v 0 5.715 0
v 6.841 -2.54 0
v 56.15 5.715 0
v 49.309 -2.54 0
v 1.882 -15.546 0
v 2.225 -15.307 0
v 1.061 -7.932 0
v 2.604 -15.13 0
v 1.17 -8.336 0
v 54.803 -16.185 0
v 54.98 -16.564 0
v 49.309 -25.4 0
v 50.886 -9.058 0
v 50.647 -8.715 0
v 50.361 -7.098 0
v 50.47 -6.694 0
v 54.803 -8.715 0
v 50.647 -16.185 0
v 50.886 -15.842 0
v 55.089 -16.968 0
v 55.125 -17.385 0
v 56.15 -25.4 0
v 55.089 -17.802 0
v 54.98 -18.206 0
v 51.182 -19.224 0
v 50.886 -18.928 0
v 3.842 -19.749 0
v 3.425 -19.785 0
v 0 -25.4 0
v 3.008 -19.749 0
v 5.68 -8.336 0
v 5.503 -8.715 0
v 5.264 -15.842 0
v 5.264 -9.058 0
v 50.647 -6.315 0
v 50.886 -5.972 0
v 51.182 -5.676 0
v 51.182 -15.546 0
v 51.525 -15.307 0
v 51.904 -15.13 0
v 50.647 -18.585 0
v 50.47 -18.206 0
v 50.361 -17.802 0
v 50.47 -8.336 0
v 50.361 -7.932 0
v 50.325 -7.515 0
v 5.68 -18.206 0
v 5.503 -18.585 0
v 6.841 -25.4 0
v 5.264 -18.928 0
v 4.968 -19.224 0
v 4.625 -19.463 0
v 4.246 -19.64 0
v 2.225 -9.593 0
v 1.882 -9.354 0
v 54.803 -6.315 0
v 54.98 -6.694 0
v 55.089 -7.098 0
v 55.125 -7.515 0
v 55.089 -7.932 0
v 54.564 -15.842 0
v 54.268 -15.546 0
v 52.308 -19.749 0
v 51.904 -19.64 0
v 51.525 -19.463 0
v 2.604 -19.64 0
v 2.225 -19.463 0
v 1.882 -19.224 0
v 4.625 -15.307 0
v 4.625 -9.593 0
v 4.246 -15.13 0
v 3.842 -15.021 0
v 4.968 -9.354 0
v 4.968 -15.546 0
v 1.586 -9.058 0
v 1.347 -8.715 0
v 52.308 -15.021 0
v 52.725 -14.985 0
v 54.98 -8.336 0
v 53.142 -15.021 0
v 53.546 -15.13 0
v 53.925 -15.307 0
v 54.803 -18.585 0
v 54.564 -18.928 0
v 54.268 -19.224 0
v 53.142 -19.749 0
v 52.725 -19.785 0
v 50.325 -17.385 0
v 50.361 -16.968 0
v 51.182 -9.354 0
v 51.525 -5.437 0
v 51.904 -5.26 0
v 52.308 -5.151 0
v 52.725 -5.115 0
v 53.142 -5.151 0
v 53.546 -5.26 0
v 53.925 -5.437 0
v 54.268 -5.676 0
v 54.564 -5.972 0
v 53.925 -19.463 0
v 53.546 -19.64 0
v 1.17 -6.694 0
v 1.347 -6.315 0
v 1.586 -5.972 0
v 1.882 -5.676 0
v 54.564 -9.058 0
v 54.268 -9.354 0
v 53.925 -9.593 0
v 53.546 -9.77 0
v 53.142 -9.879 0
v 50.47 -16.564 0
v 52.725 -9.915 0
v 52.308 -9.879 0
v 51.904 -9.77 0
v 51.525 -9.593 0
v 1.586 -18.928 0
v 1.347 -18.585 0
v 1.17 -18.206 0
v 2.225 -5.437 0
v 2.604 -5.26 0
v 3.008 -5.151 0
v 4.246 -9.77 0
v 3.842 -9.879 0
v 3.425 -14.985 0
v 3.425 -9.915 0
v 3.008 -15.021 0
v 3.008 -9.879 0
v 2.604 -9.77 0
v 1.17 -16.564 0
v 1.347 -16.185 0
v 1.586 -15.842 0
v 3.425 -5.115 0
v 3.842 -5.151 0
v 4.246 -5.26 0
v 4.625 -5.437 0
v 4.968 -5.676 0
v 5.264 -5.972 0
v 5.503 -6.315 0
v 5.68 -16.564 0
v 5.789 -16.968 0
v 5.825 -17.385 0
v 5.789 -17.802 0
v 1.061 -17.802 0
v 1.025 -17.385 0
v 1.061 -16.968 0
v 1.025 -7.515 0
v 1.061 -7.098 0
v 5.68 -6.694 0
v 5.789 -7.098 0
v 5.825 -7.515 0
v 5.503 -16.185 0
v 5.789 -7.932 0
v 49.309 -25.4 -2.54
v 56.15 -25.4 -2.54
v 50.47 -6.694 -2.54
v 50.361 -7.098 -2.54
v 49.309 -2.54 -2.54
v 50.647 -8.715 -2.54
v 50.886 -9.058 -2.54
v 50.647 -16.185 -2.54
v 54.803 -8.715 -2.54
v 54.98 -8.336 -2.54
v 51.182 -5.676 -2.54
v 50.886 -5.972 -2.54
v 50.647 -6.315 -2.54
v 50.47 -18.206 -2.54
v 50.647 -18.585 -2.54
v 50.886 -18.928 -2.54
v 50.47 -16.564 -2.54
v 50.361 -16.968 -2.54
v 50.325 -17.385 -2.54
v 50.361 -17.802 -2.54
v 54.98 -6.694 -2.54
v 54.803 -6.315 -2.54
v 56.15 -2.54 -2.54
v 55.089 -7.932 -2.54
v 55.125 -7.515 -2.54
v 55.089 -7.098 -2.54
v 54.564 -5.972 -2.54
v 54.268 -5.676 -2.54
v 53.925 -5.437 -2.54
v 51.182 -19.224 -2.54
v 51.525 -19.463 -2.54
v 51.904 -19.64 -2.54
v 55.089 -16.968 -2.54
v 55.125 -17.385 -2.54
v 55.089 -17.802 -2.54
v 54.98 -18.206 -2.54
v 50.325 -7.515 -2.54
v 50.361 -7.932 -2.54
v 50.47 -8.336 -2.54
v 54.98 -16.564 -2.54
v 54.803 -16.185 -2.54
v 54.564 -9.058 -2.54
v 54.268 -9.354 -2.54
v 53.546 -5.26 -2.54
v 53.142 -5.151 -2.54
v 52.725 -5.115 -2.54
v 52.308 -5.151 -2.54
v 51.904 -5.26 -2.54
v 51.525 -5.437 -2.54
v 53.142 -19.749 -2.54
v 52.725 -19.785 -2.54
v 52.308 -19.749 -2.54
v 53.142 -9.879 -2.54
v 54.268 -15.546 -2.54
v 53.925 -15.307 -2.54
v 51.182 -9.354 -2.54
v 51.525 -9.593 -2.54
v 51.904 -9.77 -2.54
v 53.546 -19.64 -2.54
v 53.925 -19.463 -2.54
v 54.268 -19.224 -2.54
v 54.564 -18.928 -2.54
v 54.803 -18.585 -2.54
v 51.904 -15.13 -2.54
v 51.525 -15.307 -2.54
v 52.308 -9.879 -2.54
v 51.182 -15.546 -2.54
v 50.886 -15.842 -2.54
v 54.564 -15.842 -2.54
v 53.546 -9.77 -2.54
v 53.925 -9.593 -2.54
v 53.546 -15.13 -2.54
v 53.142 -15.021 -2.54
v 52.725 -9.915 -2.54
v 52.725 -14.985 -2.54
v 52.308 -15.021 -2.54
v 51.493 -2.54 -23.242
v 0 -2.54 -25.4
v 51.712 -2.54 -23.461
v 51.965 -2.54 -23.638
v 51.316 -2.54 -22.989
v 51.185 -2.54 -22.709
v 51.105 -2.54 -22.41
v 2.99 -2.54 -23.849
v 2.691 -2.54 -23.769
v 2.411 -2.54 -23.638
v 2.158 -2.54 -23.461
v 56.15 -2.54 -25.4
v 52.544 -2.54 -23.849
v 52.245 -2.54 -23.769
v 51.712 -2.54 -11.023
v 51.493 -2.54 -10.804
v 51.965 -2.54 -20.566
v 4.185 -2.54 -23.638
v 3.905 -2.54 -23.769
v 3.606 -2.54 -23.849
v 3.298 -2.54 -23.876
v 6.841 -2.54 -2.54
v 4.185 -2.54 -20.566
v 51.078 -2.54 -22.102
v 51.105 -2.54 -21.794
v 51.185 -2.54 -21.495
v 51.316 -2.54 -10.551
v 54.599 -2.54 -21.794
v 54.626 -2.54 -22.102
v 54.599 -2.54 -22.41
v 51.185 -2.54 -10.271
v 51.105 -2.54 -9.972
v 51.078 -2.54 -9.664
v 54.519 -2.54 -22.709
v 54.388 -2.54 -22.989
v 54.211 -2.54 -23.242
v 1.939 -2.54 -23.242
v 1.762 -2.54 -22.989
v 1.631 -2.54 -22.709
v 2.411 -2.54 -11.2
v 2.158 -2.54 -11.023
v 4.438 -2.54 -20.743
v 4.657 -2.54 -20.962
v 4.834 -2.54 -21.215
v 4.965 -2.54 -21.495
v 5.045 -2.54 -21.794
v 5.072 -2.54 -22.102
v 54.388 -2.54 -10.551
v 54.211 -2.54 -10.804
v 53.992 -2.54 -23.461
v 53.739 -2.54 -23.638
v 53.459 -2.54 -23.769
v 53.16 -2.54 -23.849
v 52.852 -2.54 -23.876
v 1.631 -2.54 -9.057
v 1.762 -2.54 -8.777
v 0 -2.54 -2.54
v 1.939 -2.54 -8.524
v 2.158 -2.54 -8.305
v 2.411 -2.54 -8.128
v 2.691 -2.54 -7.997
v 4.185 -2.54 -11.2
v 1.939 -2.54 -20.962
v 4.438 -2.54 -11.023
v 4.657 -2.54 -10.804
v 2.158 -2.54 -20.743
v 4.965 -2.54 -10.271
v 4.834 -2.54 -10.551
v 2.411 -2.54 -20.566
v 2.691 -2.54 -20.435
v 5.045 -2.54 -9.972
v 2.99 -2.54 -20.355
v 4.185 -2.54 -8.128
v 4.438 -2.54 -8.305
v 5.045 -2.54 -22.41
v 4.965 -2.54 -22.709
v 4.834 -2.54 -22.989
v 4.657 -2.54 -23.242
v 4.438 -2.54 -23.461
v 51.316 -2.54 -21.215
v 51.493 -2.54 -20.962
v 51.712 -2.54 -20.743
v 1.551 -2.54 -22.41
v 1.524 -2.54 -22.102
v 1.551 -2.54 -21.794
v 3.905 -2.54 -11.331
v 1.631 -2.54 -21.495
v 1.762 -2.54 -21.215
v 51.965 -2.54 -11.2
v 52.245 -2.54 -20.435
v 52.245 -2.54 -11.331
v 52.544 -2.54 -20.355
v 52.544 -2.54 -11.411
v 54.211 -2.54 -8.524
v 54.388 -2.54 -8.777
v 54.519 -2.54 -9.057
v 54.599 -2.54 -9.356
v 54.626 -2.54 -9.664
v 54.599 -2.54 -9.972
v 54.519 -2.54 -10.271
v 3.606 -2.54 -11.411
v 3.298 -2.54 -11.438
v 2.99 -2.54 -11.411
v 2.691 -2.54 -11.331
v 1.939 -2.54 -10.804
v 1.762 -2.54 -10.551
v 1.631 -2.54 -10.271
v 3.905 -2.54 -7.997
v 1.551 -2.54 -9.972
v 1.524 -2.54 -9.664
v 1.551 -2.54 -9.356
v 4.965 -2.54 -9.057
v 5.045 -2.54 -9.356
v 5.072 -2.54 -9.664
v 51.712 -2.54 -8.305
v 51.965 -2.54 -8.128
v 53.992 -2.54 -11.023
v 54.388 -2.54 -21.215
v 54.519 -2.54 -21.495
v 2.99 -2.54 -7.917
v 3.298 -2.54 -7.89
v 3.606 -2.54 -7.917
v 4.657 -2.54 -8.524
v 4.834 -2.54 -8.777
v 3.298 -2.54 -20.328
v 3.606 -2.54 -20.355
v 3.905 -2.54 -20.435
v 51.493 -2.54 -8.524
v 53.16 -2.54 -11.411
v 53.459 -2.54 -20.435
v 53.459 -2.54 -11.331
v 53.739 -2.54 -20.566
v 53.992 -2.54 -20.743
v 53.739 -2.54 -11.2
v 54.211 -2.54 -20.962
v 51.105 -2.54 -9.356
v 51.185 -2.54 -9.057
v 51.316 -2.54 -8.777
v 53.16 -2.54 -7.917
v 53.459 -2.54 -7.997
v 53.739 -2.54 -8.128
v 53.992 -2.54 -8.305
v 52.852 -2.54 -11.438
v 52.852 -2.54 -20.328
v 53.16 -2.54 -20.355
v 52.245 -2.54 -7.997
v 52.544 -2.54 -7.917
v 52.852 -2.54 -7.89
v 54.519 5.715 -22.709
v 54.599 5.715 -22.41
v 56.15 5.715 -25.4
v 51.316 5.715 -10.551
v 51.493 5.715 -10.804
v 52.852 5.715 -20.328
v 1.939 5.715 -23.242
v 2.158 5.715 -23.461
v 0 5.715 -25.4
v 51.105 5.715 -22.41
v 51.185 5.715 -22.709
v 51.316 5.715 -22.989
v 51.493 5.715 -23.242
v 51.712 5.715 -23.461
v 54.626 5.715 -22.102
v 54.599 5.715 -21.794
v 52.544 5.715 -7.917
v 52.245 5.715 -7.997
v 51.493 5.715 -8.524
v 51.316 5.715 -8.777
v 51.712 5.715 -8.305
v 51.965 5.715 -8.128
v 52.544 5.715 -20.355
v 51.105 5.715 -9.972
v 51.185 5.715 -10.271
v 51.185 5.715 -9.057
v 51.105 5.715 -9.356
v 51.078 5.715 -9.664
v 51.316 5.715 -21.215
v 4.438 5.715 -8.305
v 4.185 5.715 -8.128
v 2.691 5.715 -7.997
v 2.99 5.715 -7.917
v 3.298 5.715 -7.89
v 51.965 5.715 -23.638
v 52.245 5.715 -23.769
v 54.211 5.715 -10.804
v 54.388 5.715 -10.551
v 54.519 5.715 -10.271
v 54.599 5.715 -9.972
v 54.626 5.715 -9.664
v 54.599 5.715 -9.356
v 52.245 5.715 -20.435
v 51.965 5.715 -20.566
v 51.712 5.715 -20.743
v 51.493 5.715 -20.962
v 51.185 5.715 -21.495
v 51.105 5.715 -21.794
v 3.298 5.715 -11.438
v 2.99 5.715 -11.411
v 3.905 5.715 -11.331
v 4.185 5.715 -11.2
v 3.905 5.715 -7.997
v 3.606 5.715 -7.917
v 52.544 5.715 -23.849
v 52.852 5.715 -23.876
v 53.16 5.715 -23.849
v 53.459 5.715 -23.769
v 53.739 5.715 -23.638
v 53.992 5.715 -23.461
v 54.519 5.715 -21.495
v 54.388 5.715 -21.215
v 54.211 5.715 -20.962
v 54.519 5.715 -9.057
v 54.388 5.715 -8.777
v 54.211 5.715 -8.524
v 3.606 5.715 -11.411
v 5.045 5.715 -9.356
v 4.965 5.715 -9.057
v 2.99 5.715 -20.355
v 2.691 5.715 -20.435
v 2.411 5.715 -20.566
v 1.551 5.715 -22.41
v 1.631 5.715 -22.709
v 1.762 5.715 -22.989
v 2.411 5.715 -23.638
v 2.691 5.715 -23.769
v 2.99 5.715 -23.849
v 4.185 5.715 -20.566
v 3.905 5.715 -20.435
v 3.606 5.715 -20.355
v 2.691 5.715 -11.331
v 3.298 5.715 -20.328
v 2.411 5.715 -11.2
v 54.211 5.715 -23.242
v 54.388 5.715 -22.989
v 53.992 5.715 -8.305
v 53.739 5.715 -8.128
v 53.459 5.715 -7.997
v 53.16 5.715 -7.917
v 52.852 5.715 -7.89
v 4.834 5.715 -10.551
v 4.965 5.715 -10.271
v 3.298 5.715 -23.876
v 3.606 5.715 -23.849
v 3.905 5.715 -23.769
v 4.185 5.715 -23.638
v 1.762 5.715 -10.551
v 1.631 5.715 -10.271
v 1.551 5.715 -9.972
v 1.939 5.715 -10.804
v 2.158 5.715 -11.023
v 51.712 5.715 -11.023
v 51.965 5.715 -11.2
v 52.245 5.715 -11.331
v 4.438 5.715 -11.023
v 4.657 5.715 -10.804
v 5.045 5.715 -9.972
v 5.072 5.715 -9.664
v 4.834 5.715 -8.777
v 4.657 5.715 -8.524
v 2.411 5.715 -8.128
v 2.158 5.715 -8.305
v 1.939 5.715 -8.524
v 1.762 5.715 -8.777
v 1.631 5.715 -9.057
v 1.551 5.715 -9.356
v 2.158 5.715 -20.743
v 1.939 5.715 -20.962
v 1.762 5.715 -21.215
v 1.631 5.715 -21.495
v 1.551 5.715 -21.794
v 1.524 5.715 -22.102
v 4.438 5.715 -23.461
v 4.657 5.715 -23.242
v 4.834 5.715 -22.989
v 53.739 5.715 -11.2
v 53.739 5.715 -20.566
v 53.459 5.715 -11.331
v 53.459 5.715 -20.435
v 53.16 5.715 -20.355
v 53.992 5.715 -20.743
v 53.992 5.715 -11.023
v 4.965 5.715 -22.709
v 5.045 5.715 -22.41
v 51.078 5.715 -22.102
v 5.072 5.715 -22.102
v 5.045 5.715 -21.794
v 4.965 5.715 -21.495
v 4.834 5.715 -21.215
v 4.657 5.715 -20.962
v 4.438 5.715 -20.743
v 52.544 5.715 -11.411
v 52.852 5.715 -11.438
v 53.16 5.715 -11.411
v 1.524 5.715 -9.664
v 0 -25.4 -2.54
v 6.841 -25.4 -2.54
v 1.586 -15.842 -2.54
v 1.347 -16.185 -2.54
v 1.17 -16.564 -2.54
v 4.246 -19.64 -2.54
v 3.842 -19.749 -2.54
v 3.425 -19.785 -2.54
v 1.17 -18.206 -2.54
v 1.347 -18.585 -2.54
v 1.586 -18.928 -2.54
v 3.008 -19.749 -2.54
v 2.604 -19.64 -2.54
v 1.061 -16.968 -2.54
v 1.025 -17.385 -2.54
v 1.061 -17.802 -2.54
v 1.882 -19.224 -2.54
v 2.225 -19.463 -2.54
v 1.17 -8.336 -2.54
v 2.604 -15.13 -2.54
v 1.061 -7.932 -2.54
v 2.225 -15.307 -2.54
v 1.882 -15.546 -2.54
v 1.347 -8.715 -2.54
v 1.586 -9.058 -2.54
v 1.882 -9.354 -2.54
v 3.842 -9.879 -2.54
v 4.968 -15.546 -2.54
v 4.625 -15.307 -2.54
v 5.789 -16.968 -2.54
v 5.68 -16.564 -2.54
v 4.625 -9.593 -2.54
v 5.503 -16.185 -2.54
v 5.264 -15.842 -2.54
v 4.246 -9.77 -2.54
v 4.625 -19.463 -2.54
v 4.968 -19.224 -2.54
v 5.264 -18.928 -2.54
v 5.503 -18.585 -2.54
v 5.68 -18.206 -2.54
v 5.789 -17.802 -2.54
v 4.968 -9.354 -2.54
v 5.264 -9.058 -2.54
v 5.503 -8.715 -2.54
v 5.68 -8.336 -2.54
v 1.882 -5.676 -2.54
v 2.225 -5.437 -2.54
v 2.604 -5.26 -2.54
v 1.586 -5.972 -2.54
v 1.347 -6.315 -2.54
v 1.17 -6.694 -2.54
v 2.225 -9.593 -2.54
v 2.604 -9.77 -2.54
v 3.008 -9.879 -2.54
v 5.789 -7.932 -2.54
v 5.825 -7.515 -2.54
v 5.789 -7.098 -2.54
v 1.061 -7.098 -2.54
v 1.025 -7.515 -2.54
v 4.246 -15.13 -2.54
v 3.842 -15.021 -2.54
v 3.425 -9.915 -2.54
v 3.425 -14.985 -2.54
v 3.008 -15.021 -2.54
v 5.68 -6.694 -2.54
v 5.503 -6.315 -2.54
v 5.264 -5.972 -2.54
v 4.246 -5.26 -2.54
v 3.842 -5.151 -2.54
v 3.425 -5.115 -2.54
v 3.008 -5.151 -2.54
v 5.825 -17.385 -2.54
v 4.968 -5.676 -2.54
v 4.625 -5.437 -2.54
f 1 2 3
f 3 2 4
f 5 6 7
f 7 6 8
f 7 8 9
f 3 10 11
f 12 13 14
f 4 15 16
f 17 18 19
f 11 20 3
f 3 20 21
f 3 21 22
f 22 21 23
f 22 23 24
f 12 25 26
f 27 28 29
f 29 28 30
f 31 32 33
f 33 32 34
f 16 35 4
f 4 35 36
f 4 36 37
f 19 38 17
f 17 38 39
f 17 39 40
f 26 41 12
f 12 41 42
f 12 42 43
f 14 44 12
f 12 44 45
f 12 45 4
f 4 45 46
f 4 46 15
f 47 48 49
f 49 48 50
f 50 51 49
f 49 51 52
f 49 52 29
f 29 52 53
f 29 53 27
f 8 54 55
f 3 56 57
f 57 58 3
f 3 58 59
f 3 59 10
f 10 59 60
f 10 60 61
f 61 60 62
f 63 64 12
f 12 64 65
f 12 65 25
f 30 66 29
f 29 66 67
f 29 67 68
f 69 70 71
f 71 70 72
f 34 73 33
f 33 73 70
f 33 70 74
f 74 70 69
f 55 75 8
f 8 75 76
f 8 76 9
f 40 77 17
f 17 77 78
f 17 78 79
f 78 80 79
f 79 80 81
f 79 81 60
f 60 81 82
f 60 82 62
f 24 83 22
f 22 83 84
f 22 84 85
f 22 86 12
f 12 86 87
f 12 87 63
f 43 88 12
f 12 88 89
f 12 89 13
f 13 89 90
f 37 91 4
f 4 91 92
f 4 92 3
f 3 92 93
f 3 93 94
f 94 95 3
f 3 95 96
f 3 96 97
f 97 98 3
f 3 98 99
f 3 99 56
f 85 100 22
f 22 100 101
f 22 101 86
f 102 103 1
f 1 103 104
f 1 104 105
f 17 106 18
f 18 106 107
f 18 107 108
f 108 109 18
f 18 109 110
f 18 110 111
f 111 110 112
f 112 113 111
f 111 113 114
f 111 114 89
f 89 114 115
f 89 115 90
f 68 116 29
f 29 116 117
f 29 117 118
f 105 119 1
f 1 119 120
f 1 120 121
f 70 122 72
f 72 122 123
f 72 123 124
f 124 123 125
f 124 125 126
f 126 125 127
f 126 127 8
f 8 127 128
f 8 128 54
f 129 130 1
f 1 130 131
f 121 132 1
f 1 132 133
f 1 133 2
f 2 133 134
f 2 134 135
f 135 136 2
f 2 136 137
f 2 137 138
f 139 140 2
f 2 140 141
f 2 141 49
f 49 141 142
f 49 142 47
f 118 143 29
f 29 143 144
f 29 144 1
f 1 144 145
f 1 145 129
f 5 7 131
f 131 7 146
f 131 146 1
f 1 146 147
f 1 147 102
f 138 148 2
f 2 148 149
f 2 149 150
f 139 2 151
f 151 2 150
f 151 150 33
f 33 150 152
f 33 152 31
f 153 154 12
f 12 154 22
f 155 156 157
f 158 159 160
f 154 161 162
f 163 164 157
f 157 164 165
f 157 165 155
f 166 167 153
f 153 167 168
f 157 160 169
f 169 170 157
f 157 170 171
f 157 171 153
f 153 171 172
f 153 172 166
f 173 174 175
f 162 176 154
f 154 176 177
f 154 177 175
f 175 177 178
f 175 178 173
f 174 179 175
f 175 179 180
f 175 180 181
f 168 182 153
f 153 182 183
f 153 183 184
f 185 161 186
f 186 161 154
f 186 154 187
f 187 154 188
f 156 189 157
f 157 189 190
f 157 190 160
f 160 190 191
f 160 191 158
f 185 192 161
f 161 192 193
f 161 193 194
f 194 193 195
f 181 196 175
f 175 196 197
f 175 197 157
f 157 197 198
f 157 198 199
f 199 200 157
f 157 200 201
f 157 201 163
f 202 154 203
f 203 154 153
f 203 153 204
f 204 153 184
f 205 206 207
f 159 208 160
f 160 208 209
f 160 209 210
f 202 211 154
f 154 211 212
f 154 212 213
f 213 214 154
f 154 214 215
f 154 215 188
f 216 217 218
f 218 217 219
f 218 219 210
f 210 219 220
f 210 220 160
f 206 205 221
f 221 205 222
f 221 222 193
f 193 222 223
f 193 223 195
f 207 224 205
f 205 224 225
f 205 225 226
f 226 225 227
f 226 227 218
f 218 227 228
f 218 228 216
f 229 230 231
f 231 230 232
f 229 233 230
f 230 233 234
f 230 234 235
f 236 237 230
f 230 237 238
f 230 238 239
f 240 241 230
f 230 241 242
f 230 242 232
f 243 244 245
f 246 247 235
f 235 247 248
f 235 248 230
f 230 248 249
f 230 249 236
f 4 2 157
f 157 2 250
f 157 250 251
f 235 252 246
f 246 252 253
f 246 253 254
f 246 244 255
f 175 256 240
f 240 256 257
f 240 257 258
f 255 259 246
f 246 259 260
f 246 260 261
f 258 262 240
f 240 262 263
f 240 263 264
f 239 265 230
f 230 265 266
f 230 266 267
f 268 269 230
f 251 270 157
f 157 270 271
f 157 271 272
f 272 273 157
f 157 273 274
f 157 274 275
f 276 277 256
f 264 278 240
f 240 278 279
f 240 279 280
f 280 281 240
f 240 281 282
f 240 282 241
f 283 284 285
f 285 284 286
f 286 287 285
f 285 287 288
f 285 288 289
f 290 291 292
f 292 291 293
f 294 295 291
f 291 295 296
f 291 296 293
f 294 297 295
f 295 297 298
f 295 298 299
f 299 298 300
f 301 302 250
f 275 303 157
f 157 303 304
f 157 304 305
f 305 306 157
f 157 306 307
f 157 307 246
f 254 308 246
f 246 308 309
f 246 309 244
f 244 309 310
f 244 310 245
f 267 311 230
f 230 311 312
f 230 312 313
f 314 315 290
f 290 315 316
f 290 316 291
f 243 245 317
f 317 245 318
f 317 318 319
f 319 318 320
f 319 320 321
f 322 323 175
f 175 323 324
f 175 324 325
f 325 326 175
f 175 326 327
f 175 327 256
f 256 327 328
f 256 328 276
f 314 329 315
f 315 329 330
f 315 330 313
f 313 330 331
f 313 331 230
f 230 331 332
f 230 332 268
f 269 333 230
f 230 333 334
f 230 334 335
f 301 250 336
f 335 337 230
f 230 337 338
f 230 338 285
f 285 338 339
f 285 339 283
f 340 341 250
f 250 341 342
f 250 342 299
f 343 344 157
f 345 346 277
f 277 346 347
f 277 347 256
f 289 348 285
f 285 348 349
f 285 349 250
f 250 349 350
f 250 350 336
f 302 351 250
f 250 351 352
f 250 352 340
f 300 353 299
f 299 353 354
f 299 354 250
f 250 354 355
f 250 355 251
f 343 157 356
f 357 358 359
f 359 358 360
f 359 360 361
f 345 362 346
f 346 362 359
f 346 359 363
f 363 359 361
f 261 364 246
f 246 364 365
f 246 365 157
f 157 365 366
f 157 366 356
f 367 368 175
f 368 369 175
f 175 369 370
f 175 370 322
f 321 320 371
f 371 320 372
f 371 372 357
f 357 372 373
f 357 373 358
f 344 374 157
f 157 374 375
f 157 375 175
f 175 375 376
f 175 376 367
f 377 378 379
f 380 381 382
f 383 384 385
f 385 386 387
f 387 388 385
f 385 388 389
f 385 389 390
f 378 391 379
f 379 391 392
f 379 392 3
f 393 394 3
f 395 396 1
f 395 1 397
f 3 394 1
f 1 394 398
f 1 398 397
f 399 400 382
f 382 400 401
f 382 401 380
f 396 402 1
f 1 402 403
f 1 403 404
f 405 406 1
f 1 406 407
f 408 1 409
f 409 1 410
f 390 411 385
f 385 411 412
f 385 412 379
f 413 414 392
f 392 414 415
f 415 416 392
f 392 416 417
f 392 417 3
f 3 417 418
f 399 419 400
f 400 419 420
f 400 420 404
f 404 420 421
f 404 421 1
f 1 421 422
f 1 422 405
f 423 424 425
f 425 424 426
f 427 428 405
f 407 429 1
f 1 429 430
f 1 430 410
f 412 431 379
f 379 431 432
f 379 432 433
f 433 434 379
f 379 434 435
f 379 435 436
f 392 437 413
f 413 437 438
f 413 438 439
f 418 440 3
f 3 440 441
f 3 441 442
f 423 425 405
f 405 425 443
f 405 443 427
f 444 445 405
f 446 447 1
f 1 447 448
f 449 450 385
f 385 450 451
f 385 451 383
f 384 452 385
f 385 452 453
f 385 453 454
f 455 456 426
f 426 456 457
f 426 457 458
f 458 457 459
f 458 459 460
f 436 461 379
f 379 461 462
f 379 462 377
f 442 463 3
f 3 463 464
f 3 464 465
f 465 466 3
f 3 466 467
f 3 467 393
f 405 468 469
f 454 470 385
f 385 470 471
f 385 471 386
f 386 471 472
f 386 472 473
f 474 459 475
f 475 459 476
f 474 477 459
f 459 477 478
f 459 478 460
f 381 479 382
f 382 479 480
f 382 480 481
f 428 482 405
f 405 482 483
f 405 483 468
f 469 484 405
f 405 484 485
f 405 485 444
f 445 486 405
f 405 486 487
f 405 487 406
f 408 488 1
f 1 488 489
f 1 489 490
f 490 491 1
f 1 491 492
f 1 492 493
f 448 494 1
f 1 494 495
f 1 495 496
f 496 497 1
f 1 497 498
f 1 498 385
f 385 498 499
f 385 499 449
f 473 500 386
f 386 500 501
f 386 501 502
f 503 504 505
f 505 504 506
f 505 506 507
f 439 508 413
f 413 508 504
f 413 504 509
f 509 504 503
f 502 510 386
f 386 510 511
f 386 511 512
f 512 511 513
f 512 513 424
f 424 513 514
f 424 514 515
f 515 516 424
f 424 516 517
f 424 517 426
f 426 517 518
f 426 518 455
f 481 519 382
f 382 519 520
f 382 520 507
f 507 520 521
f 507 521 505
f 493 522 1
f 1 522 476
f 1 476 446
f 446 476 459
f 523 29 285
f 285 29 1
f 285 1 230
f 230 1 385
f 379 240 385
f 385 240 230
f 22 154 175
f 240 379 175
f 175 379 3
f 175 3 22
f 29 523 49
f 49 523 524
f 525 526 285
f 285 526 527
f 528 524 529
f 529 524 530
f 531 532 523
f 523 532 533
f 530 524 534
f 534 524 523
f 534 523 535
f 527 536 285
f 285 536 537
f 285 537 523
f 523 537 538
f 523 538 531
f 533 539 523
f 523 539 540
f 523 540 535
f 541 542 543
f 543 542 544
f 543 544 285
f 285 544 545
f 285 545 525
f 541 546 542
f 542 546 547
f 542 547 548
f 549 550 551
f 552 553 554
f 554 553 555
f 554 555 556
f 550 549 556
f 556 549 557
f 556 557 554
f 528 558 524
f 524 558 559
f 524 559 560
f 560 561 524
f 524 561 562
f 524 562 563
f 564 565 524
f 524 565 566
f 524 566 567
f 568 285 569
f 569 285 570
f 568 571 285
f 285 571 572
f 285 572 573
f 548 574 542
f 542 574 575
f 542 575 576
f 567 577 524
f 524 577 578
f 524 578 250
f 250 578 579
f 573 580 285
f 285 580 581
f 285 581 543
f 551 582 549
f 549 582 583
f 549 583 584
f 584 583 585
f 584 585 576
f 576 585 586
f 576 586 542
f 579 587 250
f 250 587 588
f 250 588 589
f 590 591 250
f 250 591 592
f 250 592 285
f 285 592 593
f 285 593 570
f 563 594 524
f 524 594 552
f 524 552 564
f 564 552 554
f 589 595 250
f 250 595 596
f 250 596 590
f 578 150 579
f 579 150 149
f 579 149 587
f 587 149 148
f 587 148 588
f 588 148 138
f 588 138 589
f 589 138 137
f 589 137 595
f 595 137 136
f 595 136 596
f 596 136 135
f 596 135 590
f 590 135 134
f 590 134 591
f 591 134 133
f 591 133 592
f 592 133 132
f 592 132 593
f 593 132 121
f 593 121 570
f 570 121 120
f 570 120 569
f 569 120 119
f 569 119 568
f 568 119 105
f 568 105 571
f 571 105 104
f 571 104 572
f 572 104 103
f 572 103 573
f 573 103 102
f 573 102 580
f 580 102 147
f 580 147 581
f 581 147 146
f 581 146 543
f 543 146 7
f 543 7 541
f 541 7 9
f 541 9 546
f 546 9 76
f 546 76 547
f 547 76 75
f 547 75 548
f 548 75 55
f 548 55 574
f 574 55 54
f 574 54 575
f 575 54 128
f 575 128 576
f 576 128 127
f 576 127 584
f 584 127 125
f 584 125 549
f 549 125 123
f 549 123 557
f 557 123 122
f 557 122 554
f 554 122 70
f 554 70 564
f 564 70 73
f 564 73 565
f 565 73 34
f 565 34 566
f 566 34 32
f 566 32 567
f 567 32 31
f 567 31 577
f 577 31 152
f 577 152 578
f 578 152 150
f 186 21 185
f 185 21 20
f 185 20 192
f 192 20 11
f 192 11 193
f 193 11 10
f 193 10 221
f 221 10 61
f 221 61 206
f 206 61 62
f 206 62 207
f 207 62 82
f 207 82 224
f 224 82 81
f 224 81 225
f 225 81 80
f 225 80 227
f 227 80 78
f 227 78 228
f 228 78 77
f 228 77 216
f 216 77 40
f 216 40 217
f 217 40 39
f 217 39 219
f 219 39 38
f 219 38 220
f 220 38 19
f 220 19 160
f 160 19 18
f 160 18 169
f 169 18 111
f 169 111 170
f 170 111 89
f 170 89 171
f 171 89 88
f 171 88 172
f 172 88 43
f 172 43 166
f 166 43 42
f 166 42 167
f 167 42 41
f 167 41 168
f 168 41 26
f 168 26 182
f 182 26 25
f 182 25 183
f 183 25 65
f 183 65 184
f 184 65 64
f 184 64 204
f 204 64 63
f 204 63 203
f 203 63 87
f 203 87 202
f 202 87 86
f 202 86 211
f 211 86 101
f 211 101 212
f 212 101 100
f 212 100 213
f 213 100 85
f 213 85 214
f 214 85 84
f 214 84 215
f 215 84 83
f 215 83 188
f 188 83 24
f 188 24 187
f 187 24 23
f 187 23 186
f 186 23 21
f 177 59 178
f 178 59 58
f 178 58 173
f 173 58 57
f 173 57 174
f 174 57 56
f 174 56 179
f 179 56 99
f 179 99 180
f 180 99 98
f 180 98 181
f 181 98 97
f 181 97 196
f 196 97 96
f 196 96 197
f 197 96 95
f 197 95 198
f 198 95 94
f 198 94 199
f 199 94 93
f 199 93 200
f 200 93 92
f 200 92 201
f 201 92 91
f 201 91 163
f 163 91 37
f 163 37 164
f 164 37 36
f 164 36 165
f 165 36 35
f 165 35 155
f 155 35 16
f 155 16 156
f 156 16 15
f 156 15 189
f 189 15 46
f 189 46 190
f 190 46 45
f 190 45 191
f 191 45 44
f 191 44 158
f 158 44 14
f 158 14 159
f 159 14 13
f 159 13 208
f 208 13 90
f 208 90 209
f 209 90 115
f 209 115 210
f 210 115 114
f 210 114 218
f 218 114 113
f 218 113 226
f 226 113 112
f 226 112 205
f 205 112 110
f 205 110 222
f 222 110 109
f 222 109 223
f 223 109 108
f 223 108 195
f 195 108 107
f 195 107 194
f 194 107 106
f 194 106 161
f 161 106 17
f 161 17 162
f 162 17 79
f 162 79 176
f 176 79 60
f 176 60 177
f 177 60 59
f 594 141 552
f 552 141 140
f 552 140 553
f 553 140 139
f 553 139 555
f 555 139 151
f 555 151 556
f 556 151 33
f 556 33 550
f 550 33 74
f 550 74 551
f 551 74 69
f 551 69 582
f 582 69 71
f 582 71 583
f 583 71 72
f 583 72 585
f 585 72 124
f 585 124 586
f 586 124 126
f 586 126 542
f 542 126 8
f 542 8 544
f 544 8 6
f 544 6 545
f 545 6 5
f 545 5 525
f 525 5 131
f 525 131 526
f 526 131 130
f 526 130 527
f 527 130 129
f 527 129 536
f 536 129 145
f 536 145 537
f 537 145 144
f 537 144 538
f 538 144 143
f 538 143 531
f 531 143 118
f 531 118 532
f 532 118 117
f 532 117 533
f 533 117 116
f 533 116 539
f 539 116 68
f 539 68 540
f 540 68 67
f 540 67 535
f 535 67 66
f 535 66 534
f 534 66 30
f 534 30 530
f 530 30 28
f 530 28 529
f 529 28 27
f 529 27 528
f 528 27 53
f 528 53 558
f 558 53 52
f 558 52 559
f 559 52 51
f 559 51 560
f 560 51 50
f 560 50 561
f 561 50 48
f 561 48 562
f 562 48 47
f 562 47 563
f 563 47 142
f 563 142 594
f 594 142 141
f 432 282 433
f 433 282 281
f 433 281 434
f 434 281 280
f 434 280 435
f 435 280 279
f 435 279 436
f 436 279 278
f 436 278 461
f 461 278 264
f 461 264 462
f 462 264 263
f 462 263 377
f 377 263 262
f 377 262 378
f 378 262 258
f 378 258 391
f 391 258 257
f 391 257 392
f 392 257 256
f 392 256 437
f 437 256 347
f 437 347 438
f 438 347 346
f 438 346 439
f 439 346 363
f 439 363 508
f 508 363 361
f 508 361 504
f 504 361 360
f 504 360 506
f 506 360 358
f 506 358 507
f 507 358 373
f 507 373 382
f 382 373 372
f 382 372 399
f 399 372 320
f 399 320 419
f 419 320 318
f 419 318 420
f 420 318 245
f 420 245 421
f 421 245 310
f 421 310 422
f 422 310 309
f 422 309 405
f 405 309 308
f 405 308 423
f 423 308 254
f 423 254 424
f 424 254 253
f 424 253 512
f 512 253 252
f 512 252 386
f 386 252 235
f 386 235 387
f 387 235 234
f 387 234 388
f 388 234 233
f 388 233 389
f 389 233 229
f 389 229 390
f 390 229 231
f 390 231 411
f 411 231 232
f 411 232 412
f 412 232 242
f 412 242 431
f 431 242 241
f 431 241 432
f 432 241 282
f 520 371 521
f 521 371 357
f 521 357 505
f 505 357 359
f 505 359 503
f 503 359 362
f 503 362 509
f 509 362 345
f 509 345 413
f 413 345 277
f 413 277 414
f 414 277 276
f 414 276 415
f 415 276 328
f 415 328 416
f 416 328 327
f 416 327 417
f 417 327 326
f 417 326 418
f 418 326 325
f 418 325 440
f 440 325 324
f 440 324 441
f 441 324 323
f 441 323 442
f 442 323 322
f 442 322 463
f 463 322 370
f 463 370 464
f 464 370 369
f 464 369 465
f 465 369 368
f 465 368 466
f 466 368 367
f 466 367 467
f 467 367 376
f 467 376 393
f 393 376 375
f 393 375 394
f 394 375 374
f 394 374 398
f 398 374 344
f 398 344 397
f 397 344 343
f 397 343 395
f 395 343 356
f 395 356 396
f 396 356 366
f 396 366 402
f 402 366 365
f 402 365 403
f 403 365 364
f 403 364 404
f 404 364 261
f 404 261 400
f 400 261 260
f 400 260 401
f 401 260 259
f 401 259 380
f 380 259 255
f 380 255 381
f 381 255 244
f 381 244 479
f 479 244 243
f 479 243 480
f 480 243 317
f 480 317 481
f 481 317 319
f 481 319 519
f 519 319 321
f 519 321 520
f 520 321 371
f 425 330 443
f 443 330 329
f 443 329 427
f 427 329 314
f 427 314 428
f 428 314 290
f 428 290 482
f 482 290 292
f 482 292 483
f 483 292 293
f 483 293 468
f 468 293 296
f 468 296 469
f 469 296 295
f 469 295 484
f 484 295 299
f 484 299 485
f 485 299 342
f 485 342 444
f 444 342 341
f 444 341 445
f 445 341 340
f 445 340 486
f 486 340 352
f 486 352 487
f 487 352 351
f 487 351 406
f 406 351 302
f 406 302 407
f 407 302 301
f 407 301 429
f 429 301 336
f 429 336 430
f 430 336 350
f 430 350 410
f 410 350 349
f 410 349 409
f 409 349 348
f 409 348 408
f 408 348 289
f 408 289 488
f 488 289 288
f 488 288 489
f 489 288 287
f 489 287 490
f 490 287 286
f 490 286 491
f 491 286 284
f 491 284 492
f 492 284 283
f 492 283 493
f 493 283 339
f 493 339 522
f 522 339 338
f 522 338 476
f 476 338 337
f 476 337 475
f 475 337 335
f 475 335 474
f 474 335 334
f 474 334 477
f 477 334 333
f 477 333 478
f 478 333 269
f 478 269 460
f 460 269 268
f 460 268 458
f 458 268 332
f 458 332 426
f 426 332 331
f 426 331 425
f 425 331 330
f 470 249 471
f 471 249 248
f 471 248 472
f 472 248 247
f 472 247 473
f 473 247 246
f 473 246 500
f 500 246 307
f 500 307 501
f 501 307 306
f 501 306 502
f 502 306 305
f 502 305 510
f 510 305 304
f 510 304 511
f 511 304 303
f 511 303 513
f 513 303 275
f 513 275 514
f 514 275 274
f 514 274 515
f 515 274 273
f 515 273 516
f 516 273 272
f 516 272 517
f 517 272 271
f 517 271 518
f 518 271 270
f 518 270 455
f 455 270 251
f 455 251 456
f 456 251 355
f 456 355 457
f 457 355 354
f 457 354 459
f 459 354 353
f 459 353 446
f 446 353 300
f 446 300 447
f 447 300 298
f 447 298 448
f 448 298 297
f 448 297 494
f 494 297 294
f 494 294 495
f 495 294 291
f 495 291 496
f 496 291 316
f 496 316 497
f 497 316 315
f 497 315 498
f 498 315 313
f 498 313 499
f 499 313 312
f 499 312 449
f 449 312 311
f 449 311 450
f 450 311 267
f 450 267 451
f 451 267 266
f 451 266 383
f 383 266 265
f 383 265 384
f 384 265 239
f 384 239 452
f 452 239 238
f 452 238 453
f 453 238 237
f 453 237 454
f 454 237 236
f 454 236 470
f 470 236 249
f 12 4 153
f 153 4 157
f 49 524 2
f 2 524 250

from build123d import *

# Parameters (mm, degrees)
SKETCH1_W           = 56.15
SKETCH1_H           = 25.4
BOSS_EXTRUDE1_DEPTH = 2.54
SKETCH2_W           = 56.15
SKETCH2_H           = 25.4
BOSS_EXTRUDE2_DEPTH = 2.54
SKETCH3_R           = 2.400000018
CUT_EXTRUDE1_DEPTH  = 26.4
SKETCH11_W          = 56.15
SKETCH11_H          = 25.4
BOSS_EXTRUDE3_DEPTH = 5.715
SKETCH6_R           = 1.774
CUT_EXTRUDE3_DEPTH  = 9.255
CUT_EXTRUDE4_DEPTH  = 26.4


with BuildPart() as part:
    # Sketch1 → Boss-Extrude1 (new body)
    with BuildSketch(Plane(origin=(0, 0, 0), x_dir=(1, 0, 0), z_dir=(0, 1, 0))):
        with Locations((28.075, 12.7)):
            Rectangle(SKETCH1_W, SKETCH1_H)
    extrude(amount=-BOSS_EXTRUDE1_DEPTH)

    # Sketch2 → Boss-Extrude2 (add)
    with BuildSketch(Plane.XY):
        with Locations((28.075, -12.7)):
            Rectangle(SKETCH2_W, SKETCH2_H)
    extrude(amount=-BOSS_EXTRUDE2_DEPTH)

    # Sketch3 → Cut-Extrude1 (cut, through all)
    with BuildSketch(Plane.XY):
        with Locations((3.425, -7.515)):
            Circle(SKETCH3_R)
        with Locations((3.425, -17.385)):
            Circle(SKETCH3_R)
        with Locations((52.725, -7.515)):
            Circle(SKETCH3_R)
        with Locations((52.725, -17.385)):
            Circle(SKETCH3_R)
    extrude(amount=-CUT_EXTRUDE1_DEPTH, mode=Mode.SUBTRACT)

    # Sketch11 → Boss-Extrude3 (add)
    with BuildSketch(Plane(origin=(0, 0, 0), x_dir=(1, 0, 0), z_dir=(0, 1, 0))):
        with Locations((28.075, 12.7)):
            Rectangle(SKETCH11_W, SKETCH11_H)
    extrude(amount=BOSS_EXTRUDE3_DEPTH)

    # Sketch6 → Cut-Extrude3 (cut, through all)
    with BuildSketch(Plane.XZ.offset(2.54)):
        with Locations((52.852, -22.102)):
            Circle(SKETCH6_R)
        with Locations((52.852, -9.664)):
            Circle(SKETCH6_R)
        with Locations((3.298, -9.664)):
            Circle(SKETCH6_R)
        with Locations((3.298, -22.102)):
            Circle(SKETCH6_R)
    extrude(amount=-CUT_EXTRUDE3_DEPTH, mode=Mode.SUBTRACT)

    # Sketch7 → Cut-Extrude4 (cut, through all)
    with BuildSketch(Plane.XY):
        Polygon((49.308999982, -2.54), (6.841000018, -2.54), (6.841000018, -7.515), (6.841000018, -25.4), (49.308999982, -25.4), align=None)
    extrude(amount=-CUT_EXTRUDE4_DEPTH, mode=Mode.SUBTRACT)


solid = part.part
